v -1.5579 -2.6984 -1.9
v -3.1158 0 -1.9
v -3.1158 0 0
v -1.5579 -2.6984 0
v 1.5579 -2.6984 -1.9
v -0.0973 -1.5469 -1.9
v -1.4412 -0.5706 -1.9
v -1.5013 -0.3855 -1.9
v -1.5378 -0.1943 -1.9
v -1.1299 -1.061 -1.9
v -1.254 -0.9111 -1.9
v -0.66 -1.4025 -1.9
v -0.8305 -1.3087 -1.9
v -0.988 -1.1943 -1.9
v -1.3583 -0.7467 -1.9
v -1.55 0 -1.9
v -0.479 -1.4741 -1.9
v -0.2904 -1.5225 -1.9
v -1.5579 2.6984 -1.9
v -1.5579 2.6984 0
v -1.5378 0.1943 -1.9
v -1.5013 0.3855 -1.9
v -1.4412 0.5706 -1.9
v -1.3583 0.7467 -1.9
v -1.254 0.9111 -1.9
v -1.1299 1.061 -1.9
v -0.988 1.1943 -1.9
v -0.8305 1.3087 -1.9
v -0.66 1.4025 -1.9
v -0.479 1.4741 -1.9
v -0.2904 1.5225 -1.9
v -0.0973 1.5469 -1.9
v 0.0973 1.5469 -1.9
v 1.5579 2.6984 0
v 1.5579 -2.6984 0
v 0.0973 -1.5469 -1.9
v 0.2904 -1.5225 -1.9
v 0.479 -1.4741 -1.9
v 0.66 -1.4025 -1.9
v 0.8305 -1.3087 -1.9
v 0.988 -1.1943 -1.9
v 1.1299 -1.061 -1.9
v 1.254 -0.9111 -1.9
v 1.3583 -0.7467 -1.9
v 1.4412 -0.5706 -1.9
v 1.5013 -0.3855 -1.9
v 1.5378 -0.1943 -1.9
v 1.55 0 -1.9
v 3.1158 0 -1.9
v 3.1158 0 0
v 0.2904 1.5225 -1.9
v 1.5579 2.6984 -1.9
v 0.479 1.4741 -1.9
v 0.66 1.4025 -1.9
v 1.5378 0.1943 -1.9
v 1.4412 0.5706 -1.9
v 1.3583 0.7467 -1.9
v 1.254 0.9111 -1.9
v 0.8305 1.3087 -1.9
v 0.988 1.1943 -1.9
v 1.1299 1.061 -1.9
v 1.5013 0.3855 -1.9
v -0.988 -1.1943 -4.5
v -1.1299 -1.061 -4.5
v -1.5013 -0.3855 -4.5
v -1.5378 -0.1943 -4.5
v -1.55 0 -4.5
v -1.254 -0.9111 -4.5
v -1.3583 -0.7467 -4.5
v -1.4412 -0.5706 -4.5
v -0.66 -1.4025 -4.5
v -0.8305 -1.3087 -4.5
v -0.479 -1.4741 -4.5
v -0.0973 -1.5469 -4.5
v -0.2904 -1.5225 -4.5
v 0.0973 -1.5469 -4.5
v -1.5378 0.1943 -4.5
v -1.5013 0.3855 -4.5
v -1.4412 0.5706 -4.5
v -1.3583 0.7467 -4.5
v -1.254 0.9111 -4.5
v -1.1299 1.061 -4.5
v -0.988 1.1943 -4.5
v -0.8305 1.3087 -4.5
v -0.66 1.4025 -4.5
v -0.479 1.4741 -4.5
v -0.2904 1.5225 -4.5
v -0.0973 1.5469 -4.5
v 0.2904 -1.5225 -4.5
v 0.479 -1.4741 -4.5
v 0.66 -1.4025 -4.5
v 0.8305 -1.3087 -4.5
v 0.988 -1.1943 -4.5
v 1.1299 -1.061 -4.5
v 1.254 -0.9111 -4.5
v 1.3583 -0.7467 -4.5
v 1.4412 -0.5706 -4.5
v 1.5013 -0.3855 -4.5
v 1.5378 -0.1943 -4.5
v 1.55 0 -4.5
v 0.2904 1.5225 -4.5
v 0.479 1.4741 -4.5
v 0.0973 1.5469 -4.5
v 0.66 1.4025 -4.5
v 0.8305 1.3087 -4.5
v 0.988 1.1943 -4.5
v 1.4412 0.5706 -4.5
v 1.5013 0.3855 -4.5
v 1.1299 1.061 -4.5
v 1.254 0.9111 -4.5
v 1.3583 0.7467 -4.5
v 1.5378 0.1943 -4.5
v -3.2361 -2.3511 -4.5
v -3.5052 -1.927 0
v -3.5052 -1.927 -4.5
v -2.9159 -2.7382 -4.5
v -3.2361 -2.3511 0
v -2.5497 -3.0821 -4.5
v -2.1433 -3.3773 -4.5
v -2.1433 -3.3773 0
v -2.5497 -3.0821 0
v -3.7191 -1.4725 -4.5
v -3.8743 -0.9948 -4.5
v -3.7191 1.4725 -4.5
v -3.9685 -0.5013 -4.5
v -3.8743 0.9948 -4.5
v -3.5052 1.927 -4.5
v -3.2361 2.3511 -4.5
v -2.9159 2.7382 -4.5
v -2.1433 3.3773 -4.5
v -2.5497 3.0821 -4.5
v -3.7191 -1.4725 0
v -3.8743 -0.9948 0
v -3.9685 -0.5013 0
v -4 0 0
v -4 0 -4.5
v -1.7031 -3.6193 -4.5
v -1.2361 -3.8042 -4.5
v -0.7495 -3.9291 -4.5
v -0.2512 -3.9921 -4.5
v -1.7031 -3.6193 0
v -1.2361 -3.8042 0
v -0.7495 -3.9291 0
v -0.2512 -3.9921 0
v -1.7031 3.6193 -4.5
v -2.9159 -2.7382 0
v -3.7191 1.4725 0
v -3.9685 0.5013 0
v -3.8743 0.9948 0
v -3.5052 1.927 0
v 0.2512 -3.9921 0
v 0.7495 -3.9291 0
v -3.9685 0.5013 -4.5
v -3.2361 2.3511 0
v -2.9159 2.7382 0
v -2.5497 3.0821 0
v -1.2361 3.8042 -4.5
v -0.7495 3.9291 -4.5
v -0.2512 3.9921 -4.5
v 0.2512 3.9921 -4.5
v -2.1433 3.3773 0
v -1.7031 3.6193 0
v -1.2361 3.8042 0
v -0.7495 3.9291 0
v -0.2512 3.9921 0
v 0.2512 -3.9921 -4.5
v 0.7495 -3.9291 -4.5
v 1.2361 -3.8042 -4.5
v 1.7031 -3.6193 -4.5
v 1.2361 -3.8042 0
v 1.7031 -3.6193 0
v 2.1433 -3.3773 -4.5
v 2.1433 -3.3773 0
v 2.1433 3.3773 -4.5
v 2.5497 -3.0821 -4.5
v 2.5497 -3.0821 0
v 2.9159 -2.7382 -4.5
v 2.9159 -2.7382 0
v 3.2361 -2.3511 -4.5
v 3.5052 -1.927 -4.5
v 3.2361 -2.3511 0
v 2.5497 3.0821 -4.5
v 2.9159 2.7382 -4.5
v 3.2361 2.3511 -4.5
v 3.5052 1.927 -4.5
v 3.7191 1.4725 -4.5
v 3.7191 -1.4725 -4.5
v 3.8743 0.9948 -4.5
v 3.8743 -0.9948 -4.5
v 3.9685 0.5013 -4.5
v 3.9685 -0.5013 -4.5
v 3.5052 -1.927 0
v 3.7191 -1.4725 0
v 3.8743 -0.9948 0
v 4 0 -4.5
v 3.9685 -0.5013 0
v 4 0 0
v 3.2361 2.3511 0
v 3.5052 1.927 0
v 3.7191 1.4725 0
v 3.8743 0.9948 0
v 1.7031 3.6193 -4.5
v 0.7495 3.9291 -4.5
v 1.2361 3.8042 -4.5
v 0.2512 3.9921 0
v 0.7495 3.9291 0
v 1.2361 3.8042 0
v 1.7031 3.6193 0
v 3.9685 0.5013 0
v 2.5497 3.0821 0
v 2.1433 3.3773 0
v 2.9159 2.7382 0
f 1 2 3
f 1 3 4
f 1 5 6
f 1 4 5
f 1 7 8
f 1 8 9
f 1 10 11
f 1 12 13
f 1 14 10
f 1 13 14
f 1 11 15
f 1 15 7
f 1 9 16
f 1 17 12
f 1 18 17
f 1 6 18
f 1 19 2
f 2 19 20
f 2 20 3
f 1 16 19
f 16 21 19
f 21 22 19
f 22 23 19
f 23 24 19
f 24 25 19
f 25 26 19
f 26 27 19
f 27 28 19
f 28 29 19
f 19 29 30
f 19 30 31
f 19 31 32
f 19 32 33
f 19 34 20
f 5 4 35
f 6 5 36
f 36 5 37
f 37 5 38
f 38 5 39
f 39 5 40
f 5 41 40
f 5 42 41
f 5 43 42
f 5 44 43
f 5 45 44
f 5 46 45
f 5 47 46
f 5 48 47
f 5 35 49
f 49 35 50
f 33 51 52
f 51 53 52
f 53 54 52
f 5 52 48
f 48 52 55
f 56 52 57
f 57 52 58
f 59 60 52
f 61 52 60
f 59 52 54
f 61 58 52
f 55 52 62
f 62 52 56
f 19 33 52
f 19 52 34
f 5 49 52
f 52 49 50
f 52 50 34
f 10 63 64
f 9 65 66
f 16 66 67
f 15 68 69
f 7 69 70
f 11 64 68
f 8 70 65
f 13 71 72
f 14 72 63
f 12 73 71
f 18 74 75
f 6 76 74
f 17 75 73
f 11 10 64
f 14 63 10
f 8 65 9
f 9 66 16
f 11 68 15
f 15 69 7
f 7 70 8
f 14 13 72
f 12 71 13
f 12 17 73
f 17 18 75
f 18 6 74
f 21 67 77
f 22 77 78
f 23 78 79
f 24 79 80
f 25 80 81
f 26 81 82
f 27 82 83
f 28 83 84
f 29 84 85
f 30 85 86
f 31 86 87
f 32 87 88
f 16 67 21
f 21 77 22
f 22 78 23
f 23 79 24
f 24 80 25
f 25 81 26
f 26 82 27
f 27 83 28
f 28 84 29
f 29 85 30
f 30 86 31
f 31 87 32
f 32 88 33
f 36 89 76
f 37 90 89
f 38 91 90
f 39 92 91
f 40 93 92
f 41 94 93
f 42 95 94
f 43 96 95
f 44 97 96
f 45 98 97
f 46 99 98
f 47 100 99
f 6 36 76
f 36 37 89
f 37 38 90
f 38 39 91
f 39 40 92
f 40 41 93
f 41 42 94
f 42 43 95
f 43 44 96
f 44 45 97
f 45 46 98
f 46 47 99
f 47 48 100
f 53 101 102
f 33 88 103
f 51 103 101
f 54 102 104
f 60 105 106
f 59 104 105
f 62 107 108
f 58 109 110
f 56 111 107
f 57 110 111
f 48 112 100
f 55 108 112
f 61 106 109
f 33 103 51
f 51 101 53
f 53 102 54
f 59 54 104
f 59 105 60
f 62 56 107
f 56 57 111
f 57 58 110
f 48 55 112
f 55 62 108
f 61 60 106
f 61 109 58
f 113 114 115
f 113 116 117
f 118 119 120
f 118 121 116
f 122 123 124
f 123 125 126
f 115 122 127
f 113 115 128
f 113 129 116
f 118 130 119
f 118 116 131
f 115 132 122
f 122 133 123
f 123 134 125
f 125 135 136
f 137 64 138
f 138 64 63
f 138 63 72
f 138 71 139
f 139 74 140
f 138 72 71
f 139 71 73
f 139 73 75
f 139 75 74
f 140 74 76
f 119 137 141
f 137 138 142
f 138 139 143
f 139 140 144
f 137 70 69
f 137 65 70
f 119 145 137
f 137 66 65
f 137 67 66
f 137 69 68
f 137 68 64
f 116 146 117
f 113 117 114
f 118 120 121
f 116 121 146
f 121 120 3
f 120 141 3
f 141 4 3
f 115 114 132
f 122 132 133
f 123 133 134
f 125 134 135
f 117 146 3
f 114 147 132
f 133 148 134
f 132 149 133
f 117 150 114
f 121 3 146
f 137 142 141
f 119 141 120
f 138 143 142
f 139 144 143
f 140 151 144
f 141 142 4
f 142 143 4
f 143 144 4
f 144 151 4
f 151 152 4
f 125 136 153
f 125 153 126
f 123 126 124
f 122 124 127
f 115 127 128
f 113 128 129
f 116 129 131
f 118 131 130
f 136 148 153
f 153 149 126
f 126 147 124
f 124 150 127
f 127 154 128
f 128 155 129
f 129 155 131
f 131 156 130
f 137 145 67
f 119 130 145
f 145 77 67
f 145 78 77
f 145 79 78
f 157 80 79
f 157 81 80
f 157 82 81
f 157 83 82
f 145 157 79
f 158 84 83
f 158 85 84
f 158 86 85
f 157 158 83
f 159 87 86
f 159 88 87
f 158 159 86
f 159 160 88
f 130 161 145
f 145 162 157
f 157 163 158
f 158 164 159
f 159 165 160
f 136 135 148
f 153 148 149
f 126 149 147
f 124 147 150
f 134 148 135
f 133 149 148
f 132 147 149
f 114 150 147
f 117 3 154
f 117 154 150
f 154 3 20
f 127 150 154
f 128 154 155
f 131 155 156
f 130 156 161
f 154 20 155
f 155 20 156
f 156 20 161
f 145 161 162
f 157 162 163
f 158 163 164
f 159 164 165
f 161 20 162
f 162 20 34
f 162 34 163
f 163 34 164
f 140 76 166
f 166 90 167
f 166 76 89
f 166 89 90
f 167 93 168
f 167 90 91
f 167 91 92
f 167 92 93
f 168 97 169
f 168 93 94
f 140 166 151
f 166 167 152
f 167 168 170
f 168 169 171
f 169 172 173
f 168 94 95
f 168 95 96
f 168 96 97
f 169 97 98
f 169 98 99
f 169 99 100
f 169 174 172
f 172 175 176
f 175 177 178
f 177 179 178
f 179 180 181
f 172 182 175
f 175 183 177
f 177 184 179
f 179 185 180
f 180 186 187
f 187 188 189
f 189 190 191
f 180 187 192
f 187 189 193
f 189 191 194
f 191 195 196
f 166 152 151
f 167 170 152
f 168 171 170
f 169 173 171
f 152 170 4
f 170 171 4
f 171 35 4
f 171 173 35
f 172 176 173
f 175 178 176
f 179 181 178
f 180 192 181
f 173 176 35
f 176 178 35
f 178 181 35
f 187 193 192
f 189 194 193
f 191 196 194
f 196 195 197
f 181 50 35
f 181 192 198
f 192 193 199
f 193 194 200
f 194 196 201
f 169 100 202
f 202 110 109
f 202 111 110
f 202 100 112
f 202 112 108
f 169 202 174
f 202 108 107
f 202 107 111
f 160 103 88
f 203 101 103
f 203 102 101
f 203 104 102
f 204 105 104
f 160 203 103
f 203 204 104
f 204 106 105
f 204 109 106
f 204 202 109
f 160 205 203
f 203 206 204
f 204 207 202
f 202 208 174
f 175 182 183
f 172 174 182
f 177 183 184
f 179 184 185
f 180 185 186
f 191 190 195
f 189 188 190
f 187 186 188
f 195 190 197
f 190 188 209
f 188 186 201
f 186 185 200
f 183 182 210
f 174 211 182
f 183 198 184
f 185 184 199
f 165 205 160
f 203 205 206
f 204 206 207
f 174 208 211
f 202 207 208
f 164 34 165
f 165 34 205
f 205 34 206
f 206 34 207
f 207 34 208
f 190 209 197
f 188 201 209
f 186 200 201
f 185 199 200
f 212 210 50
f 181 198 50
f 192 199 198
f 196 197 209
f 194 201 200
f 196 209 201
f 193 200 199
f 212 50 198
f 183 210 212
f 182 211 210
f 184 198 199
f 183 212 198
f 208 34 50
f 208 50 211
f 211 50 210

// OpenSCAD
$fn = 50;

difference() {
	union() {
		translate(v = [0, 0, -4.5]) {
			cylinder(h = 4.5, r = 4.0);
		}
	}
	union() {
		translate(v = [0, 0, 0]) {
			rotate(a = [0, 0, 0]) {
				difference() {
					union() {
						translate(v = [0, 0, -1.9]) {
							linear_extrude(height = 1.9) {
								polygon(points = [[3.1158, 0.0], [1.5579000000000005, 2.698361953111554], [-1.5578999999999994, 2.6983619531115544], [-3.1158, 3.815754496783323e-16], [-1.5579000000000014, -2.6983619531115535], [1.557899999999998, -2.6983619531115552]]);
							}
						}
					}
					union();
				}
			}
		}
		#translate(v = [0, 0, -100.0]) {
			cylinder(h = 200, r = 1.55);
		}
	}
}
